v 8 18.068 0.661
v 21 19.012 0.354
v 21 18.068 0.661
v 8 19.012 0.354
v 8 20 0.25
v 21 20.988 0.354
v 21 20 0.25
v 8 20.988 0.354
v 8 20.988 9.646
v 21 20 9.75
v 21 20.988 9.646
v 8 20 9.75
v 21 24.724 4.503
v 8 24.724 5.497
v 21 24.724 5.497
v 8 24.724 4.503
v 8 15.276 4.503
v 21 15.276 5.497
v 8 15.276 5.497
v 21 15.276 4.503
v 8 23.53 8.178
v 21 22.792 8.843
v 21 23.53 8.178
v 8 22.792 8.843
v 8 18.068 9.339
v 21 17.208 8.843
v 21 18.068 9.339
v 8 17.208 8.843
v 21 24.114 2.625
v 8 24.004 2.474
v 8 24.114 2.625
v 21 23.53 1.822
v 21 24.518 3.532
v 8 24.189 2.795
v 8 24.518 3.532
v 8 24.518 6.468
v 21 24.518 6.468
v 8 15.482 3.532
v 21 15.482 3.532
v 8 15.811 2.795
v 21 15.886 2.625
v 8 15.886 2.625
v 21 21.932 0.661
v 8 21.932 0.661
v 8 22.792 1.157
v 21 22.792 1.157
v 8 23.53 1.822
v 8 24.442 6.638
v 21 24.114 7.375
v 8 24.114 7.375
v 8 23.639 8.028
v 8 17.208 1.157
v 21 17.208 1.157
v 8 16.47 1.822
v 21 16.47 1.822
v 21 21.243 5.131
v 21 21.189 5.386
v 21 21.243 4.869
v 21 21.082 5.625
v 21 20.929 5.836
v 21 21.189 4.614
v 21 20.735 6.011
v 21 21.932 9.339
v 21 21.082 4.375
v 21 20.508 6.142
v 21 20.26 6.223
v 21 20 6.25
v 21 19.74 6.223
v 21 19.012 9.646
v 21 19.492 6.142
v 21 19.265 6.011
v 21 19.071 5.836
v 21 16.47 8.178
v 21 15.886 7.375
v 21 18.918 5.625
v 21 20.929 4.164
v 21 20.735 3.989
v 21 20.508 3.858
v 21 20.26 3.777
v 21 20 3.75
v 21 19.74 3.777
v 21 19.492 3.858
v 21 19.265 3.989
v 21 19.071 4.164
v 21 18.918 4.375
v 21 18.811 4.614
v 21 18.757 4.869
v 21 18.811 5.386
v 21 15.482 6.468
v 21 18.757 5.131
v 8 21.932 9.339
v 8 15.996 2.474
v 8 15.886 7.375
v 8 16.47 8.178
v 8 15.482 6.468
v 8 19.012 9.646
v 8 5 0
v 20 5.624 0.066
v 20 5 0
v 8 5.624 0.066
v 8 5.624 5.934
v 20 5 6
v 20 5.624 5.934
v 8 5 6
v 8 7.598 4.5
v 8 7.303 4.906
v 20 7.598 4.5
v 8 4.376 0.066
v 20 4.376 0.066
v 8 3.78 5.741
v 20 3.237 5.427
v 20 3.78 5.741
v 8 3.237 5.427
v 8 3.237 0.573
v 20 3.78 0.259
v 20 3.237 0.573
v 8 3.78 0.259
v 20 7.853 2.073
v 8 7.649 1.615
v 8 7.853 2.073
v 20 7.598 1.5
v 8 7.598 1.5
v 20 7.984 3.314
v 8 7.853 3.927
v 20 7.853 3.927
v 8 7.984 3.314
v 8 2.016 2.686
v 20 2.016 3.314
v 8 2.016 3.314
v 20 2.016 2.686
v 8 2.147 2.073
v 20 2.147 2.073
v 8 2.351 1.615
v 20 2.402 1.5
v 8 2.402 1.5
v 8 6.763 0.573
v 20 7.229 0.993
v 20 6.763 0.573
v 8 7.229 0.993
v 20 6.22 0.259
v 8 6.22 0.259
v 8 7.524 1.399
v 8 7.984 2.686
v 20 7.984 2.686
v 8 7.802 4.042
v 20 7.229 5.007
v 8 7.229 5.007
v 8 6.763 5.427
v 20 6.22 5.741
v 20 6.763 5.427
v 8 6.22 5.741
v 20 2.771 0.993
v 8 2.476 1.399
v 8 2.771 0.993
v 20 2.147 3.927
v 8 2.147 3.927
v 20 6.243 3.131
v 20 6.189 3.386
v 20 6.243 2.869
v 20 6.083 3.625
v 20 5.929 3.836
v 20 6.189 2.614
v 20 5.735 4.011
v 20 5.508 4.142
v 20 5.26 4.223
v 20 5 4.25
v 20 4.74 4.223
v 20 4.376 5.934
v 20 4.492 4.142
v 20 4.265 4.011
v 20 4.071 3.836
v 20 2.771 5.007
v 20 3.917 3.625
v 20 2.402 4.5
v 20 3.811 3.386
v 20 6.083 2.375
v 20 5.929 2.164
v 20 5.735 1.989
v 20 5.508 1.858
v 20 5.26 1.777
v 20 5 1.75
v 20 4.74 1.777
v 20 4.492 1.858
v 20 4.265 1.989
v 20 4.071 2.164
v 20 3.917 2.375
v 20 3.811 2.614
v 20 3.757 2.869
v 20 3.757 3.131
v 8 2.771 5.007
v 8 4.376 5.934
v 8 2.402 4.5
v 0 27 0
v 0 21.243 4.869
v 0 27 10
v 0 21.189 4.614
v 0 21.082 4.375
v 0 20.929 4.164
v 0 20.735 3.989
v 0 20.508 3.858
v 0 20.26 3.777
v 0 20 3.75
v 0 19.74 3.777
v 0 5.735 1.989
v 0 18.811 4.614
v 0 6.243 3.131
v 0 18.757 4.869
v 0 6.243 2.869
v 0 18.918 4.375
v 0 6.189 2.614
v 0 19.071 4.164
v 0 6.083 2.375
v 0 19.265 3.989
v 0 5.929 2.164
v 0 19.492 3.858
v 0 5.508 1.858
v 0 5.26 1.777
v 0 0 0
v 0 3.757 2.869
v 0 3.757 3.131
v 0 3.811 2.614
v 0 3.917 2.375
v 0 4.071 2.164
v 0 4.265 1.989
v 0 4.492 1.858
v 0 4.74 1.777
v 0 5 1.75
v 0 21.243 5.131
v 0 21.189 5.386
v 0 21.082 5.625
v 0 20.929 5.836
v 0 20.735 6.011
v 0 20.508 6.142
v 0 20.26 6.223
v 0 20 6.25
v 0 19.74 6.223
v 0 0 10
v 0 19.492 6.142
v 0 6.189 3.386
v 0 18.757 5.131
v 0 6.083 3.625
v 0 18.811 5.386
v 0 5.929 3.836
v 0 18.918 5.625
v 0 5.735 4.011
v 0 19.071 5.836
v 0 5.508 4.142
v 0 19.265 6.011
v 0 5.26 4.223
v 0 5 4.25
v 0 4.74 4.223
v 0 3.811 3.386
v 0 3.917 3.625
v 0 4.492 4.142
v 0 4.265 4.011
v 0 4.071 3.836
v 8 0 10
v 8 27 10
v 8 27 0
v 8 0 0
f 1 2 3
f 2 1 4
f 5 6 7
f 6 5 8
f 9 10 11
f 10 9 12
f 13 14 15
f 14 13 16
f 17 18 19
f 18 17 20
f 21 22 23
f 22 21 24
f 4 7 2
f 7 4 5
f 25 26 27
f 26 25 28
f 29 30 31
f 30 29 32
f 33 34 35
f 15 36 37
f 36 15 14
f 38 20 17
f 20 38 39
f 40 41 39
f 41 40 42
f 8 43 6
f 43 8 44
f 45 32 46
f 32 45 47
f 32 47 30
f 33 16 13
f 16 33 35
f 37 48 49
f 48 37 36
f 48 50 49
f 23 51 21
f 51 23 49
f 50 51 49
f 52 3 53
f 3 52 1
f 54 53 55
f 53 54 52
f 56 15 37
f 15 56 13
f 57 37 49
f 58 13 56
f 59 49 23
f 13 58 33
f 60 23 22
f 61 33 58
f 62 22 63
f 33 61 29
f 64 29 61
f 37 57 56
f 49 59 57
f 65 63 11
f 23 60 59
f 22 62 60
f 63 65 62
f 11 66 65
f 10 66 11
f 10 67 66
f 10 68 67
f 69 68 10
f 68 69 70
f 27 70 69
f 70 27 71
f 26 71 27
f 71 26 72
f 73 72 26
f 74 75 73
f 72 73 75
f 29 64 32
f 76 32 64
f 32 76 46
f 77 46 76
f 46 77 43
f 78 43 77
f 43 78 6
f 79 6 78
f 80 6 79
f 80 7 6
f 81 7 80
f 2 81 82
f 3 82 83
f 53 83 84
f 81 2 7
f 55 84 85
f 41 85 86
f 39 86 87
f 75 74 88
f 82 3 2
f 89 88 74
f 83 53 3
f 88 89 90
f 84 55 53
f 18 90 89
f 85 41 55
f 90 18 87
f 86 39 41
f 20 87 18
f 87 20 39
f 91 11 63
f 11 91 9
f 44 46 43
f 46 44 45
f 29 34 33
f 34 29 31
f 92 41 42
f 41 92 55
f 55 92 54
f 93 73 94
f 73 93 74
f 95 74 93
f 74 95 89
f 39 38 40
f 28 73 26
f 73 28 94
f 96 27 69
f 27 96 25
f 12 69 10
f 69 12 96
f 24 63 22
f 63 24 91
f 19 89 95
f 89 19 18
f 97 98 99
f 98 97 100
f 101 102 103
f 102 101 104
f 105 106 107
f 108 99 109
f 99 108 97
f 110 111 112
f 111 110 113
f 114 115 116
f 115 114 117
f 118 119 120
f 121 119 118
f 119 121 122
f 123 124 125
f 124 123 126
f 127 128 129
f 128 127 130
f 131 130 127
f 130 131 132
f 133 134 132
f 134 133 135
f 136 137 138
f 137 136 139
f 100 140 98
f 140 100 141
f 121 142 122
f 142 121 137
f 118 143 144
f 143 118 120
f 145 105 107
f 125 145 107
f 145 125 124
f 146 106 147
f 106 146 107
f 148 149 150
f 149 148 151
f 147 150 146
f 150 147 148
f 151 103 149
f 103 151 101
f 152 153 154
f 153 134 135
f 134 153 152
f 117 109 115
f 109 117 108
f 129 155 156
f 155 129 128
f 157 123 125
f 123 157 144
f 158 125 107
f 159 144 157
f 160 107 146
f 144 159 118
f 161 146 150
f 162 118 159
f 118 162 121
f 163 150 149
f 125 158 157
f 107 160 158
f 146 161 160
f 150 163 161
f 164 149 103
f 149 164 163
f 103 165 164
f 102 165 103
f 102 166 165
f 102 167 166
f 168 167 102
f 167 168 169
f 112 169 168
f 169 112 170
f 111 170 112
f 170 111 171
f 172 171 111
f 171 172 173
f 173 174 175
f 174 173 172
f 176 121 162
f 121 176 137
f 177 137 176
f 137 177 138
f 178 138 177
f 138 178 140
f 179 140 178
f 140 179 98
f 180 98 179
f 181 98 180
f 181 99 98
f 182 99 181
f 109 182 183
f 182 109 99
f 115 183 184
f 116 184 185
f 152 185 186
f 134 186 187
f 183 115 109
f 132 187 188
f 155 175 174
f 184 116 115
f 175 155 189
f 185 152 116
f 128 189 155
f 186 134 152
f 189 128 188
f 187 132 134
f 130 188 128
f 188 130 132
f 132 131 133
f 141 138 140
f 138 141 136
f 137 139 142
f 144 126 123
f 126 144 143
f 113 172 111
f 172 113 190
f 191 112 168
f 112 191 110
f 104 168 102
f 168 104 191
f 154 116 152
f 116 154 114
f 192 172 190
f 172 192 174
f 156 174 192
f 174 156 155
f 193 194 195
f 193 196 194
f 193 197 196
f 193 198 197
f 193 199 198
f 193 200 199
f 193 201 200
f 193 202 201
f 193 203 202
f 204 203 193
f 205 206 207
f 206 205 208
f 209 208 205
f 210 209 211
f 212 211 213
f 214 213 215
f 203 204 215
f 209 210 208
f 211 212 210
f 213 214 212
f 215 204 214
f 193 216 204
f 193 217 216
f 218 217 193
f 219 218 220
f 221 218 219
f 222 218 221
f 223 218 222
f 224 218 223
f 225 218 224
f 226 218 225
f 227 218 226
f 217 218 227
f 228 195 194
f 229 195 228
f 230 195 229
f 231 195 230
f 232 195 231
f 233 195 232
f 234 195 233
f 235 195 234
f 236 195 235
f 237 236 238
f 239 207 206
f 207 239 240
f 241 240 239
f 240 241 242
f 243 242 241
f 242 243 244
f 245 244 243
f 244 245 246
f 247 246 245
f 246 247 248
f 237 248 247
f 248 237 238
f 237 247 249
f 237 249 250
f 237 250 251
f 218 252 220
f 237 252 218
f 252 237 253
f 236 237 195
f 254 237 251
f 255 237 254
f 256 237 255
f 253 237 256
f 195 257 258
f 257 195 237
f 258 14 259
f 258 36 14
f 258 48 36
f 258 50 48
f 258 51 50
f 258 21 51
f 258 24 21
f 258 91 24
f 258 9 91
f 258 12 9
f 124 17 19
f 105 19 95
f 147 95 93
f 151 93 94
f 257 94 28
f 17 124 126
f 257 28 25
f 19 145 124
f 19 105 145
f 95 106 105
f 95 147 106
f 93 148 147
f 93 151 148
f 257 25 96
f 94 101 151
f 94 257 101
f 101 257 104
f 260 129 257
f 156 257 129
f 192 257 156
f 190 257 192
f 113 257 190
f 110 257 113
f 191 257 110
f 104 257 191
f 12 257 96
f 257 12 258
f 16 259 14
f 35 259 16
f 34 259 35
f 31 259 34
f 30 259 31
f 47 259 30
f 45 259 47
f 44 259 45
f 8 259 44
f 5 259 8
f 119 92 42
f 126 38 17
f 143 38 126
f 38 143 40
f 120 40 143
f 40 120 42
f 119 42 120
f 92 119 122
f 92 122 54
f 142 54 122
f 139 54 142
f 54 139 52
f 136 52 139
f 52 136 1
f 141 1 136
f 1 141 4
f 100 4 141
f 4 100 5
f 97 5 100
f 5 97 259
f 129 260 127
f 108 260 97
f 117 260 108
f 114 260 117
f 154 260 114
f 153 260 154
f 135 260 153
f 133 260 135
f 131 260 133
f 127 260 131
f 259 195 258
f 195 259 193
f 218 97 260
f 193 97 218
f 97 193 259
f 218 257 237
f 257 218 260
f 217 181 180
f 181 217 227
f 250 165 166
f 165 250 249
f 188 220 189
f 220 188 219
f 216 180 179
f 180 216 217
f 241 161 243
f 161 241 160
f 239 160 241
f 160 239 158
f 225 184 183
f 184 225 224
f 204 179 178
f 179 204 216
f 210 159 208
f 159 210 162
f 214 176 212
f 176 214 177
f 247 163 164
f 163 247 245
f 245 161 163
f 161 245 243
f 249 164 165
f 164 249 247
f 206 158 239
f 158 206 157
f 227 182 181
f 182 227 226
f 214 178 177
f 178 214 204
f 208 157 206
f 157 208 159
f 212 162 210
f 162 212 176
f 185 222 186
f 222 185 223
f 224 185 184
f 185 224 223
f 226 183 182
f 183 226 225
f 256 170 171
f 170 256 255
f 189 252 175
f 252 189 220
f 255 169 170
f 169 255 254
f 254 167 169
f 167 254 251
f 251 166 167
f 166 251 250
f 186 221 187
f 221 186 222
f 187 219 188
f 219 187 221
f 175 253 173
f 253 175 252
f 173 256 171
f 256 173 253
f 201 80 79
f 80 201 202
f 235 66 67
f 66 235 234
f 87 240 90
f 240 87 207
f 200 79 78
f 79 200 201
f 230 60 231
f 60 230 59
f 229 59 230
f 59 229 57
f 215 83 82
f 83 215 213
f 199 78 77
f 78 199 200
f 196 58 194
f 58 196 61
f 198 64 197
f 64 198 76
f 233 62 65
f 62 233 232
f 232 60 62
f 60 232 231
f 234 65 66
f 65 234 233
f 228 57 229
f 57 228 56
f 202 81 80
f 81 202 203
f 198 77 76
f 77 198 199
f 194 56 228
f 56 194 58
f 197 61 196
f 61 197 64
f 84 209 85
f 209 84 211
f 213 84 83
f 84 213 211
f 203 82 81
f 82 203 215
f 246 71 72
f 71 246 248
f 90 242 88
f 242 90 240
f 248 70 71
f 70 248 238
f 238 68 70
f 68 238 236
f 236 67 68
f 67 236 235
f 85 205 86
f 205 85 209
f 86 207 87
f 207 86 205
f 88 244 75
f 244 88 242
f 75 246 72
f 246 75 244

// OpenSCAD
module buffers() {
	translate([5,20,5])
		bufferlarge();
	translate([5,5,3])
		buffersmall();
}

module buffersmall() {
		rotate([0,90,0]) {
			cylinder(h=15,d=6,$fn=30);
			}
}

module bufferlarge() {
		rotate([0,90,0]) {
			cylinder(h=16,d=9.5,$fn=30);
		}
}


difference() {
	union() {
    cube([8,27,10]);
	buffers();
	}
	translate([-5,5,3])
		rotate([0,90,0])
			cylinder(h=40,d=2.5,$fn=30);
	translate([-5,20,5])
		rotate([0,90,0])
			cylinder(h=40,d=2.5,$fn=30);	
}
	
